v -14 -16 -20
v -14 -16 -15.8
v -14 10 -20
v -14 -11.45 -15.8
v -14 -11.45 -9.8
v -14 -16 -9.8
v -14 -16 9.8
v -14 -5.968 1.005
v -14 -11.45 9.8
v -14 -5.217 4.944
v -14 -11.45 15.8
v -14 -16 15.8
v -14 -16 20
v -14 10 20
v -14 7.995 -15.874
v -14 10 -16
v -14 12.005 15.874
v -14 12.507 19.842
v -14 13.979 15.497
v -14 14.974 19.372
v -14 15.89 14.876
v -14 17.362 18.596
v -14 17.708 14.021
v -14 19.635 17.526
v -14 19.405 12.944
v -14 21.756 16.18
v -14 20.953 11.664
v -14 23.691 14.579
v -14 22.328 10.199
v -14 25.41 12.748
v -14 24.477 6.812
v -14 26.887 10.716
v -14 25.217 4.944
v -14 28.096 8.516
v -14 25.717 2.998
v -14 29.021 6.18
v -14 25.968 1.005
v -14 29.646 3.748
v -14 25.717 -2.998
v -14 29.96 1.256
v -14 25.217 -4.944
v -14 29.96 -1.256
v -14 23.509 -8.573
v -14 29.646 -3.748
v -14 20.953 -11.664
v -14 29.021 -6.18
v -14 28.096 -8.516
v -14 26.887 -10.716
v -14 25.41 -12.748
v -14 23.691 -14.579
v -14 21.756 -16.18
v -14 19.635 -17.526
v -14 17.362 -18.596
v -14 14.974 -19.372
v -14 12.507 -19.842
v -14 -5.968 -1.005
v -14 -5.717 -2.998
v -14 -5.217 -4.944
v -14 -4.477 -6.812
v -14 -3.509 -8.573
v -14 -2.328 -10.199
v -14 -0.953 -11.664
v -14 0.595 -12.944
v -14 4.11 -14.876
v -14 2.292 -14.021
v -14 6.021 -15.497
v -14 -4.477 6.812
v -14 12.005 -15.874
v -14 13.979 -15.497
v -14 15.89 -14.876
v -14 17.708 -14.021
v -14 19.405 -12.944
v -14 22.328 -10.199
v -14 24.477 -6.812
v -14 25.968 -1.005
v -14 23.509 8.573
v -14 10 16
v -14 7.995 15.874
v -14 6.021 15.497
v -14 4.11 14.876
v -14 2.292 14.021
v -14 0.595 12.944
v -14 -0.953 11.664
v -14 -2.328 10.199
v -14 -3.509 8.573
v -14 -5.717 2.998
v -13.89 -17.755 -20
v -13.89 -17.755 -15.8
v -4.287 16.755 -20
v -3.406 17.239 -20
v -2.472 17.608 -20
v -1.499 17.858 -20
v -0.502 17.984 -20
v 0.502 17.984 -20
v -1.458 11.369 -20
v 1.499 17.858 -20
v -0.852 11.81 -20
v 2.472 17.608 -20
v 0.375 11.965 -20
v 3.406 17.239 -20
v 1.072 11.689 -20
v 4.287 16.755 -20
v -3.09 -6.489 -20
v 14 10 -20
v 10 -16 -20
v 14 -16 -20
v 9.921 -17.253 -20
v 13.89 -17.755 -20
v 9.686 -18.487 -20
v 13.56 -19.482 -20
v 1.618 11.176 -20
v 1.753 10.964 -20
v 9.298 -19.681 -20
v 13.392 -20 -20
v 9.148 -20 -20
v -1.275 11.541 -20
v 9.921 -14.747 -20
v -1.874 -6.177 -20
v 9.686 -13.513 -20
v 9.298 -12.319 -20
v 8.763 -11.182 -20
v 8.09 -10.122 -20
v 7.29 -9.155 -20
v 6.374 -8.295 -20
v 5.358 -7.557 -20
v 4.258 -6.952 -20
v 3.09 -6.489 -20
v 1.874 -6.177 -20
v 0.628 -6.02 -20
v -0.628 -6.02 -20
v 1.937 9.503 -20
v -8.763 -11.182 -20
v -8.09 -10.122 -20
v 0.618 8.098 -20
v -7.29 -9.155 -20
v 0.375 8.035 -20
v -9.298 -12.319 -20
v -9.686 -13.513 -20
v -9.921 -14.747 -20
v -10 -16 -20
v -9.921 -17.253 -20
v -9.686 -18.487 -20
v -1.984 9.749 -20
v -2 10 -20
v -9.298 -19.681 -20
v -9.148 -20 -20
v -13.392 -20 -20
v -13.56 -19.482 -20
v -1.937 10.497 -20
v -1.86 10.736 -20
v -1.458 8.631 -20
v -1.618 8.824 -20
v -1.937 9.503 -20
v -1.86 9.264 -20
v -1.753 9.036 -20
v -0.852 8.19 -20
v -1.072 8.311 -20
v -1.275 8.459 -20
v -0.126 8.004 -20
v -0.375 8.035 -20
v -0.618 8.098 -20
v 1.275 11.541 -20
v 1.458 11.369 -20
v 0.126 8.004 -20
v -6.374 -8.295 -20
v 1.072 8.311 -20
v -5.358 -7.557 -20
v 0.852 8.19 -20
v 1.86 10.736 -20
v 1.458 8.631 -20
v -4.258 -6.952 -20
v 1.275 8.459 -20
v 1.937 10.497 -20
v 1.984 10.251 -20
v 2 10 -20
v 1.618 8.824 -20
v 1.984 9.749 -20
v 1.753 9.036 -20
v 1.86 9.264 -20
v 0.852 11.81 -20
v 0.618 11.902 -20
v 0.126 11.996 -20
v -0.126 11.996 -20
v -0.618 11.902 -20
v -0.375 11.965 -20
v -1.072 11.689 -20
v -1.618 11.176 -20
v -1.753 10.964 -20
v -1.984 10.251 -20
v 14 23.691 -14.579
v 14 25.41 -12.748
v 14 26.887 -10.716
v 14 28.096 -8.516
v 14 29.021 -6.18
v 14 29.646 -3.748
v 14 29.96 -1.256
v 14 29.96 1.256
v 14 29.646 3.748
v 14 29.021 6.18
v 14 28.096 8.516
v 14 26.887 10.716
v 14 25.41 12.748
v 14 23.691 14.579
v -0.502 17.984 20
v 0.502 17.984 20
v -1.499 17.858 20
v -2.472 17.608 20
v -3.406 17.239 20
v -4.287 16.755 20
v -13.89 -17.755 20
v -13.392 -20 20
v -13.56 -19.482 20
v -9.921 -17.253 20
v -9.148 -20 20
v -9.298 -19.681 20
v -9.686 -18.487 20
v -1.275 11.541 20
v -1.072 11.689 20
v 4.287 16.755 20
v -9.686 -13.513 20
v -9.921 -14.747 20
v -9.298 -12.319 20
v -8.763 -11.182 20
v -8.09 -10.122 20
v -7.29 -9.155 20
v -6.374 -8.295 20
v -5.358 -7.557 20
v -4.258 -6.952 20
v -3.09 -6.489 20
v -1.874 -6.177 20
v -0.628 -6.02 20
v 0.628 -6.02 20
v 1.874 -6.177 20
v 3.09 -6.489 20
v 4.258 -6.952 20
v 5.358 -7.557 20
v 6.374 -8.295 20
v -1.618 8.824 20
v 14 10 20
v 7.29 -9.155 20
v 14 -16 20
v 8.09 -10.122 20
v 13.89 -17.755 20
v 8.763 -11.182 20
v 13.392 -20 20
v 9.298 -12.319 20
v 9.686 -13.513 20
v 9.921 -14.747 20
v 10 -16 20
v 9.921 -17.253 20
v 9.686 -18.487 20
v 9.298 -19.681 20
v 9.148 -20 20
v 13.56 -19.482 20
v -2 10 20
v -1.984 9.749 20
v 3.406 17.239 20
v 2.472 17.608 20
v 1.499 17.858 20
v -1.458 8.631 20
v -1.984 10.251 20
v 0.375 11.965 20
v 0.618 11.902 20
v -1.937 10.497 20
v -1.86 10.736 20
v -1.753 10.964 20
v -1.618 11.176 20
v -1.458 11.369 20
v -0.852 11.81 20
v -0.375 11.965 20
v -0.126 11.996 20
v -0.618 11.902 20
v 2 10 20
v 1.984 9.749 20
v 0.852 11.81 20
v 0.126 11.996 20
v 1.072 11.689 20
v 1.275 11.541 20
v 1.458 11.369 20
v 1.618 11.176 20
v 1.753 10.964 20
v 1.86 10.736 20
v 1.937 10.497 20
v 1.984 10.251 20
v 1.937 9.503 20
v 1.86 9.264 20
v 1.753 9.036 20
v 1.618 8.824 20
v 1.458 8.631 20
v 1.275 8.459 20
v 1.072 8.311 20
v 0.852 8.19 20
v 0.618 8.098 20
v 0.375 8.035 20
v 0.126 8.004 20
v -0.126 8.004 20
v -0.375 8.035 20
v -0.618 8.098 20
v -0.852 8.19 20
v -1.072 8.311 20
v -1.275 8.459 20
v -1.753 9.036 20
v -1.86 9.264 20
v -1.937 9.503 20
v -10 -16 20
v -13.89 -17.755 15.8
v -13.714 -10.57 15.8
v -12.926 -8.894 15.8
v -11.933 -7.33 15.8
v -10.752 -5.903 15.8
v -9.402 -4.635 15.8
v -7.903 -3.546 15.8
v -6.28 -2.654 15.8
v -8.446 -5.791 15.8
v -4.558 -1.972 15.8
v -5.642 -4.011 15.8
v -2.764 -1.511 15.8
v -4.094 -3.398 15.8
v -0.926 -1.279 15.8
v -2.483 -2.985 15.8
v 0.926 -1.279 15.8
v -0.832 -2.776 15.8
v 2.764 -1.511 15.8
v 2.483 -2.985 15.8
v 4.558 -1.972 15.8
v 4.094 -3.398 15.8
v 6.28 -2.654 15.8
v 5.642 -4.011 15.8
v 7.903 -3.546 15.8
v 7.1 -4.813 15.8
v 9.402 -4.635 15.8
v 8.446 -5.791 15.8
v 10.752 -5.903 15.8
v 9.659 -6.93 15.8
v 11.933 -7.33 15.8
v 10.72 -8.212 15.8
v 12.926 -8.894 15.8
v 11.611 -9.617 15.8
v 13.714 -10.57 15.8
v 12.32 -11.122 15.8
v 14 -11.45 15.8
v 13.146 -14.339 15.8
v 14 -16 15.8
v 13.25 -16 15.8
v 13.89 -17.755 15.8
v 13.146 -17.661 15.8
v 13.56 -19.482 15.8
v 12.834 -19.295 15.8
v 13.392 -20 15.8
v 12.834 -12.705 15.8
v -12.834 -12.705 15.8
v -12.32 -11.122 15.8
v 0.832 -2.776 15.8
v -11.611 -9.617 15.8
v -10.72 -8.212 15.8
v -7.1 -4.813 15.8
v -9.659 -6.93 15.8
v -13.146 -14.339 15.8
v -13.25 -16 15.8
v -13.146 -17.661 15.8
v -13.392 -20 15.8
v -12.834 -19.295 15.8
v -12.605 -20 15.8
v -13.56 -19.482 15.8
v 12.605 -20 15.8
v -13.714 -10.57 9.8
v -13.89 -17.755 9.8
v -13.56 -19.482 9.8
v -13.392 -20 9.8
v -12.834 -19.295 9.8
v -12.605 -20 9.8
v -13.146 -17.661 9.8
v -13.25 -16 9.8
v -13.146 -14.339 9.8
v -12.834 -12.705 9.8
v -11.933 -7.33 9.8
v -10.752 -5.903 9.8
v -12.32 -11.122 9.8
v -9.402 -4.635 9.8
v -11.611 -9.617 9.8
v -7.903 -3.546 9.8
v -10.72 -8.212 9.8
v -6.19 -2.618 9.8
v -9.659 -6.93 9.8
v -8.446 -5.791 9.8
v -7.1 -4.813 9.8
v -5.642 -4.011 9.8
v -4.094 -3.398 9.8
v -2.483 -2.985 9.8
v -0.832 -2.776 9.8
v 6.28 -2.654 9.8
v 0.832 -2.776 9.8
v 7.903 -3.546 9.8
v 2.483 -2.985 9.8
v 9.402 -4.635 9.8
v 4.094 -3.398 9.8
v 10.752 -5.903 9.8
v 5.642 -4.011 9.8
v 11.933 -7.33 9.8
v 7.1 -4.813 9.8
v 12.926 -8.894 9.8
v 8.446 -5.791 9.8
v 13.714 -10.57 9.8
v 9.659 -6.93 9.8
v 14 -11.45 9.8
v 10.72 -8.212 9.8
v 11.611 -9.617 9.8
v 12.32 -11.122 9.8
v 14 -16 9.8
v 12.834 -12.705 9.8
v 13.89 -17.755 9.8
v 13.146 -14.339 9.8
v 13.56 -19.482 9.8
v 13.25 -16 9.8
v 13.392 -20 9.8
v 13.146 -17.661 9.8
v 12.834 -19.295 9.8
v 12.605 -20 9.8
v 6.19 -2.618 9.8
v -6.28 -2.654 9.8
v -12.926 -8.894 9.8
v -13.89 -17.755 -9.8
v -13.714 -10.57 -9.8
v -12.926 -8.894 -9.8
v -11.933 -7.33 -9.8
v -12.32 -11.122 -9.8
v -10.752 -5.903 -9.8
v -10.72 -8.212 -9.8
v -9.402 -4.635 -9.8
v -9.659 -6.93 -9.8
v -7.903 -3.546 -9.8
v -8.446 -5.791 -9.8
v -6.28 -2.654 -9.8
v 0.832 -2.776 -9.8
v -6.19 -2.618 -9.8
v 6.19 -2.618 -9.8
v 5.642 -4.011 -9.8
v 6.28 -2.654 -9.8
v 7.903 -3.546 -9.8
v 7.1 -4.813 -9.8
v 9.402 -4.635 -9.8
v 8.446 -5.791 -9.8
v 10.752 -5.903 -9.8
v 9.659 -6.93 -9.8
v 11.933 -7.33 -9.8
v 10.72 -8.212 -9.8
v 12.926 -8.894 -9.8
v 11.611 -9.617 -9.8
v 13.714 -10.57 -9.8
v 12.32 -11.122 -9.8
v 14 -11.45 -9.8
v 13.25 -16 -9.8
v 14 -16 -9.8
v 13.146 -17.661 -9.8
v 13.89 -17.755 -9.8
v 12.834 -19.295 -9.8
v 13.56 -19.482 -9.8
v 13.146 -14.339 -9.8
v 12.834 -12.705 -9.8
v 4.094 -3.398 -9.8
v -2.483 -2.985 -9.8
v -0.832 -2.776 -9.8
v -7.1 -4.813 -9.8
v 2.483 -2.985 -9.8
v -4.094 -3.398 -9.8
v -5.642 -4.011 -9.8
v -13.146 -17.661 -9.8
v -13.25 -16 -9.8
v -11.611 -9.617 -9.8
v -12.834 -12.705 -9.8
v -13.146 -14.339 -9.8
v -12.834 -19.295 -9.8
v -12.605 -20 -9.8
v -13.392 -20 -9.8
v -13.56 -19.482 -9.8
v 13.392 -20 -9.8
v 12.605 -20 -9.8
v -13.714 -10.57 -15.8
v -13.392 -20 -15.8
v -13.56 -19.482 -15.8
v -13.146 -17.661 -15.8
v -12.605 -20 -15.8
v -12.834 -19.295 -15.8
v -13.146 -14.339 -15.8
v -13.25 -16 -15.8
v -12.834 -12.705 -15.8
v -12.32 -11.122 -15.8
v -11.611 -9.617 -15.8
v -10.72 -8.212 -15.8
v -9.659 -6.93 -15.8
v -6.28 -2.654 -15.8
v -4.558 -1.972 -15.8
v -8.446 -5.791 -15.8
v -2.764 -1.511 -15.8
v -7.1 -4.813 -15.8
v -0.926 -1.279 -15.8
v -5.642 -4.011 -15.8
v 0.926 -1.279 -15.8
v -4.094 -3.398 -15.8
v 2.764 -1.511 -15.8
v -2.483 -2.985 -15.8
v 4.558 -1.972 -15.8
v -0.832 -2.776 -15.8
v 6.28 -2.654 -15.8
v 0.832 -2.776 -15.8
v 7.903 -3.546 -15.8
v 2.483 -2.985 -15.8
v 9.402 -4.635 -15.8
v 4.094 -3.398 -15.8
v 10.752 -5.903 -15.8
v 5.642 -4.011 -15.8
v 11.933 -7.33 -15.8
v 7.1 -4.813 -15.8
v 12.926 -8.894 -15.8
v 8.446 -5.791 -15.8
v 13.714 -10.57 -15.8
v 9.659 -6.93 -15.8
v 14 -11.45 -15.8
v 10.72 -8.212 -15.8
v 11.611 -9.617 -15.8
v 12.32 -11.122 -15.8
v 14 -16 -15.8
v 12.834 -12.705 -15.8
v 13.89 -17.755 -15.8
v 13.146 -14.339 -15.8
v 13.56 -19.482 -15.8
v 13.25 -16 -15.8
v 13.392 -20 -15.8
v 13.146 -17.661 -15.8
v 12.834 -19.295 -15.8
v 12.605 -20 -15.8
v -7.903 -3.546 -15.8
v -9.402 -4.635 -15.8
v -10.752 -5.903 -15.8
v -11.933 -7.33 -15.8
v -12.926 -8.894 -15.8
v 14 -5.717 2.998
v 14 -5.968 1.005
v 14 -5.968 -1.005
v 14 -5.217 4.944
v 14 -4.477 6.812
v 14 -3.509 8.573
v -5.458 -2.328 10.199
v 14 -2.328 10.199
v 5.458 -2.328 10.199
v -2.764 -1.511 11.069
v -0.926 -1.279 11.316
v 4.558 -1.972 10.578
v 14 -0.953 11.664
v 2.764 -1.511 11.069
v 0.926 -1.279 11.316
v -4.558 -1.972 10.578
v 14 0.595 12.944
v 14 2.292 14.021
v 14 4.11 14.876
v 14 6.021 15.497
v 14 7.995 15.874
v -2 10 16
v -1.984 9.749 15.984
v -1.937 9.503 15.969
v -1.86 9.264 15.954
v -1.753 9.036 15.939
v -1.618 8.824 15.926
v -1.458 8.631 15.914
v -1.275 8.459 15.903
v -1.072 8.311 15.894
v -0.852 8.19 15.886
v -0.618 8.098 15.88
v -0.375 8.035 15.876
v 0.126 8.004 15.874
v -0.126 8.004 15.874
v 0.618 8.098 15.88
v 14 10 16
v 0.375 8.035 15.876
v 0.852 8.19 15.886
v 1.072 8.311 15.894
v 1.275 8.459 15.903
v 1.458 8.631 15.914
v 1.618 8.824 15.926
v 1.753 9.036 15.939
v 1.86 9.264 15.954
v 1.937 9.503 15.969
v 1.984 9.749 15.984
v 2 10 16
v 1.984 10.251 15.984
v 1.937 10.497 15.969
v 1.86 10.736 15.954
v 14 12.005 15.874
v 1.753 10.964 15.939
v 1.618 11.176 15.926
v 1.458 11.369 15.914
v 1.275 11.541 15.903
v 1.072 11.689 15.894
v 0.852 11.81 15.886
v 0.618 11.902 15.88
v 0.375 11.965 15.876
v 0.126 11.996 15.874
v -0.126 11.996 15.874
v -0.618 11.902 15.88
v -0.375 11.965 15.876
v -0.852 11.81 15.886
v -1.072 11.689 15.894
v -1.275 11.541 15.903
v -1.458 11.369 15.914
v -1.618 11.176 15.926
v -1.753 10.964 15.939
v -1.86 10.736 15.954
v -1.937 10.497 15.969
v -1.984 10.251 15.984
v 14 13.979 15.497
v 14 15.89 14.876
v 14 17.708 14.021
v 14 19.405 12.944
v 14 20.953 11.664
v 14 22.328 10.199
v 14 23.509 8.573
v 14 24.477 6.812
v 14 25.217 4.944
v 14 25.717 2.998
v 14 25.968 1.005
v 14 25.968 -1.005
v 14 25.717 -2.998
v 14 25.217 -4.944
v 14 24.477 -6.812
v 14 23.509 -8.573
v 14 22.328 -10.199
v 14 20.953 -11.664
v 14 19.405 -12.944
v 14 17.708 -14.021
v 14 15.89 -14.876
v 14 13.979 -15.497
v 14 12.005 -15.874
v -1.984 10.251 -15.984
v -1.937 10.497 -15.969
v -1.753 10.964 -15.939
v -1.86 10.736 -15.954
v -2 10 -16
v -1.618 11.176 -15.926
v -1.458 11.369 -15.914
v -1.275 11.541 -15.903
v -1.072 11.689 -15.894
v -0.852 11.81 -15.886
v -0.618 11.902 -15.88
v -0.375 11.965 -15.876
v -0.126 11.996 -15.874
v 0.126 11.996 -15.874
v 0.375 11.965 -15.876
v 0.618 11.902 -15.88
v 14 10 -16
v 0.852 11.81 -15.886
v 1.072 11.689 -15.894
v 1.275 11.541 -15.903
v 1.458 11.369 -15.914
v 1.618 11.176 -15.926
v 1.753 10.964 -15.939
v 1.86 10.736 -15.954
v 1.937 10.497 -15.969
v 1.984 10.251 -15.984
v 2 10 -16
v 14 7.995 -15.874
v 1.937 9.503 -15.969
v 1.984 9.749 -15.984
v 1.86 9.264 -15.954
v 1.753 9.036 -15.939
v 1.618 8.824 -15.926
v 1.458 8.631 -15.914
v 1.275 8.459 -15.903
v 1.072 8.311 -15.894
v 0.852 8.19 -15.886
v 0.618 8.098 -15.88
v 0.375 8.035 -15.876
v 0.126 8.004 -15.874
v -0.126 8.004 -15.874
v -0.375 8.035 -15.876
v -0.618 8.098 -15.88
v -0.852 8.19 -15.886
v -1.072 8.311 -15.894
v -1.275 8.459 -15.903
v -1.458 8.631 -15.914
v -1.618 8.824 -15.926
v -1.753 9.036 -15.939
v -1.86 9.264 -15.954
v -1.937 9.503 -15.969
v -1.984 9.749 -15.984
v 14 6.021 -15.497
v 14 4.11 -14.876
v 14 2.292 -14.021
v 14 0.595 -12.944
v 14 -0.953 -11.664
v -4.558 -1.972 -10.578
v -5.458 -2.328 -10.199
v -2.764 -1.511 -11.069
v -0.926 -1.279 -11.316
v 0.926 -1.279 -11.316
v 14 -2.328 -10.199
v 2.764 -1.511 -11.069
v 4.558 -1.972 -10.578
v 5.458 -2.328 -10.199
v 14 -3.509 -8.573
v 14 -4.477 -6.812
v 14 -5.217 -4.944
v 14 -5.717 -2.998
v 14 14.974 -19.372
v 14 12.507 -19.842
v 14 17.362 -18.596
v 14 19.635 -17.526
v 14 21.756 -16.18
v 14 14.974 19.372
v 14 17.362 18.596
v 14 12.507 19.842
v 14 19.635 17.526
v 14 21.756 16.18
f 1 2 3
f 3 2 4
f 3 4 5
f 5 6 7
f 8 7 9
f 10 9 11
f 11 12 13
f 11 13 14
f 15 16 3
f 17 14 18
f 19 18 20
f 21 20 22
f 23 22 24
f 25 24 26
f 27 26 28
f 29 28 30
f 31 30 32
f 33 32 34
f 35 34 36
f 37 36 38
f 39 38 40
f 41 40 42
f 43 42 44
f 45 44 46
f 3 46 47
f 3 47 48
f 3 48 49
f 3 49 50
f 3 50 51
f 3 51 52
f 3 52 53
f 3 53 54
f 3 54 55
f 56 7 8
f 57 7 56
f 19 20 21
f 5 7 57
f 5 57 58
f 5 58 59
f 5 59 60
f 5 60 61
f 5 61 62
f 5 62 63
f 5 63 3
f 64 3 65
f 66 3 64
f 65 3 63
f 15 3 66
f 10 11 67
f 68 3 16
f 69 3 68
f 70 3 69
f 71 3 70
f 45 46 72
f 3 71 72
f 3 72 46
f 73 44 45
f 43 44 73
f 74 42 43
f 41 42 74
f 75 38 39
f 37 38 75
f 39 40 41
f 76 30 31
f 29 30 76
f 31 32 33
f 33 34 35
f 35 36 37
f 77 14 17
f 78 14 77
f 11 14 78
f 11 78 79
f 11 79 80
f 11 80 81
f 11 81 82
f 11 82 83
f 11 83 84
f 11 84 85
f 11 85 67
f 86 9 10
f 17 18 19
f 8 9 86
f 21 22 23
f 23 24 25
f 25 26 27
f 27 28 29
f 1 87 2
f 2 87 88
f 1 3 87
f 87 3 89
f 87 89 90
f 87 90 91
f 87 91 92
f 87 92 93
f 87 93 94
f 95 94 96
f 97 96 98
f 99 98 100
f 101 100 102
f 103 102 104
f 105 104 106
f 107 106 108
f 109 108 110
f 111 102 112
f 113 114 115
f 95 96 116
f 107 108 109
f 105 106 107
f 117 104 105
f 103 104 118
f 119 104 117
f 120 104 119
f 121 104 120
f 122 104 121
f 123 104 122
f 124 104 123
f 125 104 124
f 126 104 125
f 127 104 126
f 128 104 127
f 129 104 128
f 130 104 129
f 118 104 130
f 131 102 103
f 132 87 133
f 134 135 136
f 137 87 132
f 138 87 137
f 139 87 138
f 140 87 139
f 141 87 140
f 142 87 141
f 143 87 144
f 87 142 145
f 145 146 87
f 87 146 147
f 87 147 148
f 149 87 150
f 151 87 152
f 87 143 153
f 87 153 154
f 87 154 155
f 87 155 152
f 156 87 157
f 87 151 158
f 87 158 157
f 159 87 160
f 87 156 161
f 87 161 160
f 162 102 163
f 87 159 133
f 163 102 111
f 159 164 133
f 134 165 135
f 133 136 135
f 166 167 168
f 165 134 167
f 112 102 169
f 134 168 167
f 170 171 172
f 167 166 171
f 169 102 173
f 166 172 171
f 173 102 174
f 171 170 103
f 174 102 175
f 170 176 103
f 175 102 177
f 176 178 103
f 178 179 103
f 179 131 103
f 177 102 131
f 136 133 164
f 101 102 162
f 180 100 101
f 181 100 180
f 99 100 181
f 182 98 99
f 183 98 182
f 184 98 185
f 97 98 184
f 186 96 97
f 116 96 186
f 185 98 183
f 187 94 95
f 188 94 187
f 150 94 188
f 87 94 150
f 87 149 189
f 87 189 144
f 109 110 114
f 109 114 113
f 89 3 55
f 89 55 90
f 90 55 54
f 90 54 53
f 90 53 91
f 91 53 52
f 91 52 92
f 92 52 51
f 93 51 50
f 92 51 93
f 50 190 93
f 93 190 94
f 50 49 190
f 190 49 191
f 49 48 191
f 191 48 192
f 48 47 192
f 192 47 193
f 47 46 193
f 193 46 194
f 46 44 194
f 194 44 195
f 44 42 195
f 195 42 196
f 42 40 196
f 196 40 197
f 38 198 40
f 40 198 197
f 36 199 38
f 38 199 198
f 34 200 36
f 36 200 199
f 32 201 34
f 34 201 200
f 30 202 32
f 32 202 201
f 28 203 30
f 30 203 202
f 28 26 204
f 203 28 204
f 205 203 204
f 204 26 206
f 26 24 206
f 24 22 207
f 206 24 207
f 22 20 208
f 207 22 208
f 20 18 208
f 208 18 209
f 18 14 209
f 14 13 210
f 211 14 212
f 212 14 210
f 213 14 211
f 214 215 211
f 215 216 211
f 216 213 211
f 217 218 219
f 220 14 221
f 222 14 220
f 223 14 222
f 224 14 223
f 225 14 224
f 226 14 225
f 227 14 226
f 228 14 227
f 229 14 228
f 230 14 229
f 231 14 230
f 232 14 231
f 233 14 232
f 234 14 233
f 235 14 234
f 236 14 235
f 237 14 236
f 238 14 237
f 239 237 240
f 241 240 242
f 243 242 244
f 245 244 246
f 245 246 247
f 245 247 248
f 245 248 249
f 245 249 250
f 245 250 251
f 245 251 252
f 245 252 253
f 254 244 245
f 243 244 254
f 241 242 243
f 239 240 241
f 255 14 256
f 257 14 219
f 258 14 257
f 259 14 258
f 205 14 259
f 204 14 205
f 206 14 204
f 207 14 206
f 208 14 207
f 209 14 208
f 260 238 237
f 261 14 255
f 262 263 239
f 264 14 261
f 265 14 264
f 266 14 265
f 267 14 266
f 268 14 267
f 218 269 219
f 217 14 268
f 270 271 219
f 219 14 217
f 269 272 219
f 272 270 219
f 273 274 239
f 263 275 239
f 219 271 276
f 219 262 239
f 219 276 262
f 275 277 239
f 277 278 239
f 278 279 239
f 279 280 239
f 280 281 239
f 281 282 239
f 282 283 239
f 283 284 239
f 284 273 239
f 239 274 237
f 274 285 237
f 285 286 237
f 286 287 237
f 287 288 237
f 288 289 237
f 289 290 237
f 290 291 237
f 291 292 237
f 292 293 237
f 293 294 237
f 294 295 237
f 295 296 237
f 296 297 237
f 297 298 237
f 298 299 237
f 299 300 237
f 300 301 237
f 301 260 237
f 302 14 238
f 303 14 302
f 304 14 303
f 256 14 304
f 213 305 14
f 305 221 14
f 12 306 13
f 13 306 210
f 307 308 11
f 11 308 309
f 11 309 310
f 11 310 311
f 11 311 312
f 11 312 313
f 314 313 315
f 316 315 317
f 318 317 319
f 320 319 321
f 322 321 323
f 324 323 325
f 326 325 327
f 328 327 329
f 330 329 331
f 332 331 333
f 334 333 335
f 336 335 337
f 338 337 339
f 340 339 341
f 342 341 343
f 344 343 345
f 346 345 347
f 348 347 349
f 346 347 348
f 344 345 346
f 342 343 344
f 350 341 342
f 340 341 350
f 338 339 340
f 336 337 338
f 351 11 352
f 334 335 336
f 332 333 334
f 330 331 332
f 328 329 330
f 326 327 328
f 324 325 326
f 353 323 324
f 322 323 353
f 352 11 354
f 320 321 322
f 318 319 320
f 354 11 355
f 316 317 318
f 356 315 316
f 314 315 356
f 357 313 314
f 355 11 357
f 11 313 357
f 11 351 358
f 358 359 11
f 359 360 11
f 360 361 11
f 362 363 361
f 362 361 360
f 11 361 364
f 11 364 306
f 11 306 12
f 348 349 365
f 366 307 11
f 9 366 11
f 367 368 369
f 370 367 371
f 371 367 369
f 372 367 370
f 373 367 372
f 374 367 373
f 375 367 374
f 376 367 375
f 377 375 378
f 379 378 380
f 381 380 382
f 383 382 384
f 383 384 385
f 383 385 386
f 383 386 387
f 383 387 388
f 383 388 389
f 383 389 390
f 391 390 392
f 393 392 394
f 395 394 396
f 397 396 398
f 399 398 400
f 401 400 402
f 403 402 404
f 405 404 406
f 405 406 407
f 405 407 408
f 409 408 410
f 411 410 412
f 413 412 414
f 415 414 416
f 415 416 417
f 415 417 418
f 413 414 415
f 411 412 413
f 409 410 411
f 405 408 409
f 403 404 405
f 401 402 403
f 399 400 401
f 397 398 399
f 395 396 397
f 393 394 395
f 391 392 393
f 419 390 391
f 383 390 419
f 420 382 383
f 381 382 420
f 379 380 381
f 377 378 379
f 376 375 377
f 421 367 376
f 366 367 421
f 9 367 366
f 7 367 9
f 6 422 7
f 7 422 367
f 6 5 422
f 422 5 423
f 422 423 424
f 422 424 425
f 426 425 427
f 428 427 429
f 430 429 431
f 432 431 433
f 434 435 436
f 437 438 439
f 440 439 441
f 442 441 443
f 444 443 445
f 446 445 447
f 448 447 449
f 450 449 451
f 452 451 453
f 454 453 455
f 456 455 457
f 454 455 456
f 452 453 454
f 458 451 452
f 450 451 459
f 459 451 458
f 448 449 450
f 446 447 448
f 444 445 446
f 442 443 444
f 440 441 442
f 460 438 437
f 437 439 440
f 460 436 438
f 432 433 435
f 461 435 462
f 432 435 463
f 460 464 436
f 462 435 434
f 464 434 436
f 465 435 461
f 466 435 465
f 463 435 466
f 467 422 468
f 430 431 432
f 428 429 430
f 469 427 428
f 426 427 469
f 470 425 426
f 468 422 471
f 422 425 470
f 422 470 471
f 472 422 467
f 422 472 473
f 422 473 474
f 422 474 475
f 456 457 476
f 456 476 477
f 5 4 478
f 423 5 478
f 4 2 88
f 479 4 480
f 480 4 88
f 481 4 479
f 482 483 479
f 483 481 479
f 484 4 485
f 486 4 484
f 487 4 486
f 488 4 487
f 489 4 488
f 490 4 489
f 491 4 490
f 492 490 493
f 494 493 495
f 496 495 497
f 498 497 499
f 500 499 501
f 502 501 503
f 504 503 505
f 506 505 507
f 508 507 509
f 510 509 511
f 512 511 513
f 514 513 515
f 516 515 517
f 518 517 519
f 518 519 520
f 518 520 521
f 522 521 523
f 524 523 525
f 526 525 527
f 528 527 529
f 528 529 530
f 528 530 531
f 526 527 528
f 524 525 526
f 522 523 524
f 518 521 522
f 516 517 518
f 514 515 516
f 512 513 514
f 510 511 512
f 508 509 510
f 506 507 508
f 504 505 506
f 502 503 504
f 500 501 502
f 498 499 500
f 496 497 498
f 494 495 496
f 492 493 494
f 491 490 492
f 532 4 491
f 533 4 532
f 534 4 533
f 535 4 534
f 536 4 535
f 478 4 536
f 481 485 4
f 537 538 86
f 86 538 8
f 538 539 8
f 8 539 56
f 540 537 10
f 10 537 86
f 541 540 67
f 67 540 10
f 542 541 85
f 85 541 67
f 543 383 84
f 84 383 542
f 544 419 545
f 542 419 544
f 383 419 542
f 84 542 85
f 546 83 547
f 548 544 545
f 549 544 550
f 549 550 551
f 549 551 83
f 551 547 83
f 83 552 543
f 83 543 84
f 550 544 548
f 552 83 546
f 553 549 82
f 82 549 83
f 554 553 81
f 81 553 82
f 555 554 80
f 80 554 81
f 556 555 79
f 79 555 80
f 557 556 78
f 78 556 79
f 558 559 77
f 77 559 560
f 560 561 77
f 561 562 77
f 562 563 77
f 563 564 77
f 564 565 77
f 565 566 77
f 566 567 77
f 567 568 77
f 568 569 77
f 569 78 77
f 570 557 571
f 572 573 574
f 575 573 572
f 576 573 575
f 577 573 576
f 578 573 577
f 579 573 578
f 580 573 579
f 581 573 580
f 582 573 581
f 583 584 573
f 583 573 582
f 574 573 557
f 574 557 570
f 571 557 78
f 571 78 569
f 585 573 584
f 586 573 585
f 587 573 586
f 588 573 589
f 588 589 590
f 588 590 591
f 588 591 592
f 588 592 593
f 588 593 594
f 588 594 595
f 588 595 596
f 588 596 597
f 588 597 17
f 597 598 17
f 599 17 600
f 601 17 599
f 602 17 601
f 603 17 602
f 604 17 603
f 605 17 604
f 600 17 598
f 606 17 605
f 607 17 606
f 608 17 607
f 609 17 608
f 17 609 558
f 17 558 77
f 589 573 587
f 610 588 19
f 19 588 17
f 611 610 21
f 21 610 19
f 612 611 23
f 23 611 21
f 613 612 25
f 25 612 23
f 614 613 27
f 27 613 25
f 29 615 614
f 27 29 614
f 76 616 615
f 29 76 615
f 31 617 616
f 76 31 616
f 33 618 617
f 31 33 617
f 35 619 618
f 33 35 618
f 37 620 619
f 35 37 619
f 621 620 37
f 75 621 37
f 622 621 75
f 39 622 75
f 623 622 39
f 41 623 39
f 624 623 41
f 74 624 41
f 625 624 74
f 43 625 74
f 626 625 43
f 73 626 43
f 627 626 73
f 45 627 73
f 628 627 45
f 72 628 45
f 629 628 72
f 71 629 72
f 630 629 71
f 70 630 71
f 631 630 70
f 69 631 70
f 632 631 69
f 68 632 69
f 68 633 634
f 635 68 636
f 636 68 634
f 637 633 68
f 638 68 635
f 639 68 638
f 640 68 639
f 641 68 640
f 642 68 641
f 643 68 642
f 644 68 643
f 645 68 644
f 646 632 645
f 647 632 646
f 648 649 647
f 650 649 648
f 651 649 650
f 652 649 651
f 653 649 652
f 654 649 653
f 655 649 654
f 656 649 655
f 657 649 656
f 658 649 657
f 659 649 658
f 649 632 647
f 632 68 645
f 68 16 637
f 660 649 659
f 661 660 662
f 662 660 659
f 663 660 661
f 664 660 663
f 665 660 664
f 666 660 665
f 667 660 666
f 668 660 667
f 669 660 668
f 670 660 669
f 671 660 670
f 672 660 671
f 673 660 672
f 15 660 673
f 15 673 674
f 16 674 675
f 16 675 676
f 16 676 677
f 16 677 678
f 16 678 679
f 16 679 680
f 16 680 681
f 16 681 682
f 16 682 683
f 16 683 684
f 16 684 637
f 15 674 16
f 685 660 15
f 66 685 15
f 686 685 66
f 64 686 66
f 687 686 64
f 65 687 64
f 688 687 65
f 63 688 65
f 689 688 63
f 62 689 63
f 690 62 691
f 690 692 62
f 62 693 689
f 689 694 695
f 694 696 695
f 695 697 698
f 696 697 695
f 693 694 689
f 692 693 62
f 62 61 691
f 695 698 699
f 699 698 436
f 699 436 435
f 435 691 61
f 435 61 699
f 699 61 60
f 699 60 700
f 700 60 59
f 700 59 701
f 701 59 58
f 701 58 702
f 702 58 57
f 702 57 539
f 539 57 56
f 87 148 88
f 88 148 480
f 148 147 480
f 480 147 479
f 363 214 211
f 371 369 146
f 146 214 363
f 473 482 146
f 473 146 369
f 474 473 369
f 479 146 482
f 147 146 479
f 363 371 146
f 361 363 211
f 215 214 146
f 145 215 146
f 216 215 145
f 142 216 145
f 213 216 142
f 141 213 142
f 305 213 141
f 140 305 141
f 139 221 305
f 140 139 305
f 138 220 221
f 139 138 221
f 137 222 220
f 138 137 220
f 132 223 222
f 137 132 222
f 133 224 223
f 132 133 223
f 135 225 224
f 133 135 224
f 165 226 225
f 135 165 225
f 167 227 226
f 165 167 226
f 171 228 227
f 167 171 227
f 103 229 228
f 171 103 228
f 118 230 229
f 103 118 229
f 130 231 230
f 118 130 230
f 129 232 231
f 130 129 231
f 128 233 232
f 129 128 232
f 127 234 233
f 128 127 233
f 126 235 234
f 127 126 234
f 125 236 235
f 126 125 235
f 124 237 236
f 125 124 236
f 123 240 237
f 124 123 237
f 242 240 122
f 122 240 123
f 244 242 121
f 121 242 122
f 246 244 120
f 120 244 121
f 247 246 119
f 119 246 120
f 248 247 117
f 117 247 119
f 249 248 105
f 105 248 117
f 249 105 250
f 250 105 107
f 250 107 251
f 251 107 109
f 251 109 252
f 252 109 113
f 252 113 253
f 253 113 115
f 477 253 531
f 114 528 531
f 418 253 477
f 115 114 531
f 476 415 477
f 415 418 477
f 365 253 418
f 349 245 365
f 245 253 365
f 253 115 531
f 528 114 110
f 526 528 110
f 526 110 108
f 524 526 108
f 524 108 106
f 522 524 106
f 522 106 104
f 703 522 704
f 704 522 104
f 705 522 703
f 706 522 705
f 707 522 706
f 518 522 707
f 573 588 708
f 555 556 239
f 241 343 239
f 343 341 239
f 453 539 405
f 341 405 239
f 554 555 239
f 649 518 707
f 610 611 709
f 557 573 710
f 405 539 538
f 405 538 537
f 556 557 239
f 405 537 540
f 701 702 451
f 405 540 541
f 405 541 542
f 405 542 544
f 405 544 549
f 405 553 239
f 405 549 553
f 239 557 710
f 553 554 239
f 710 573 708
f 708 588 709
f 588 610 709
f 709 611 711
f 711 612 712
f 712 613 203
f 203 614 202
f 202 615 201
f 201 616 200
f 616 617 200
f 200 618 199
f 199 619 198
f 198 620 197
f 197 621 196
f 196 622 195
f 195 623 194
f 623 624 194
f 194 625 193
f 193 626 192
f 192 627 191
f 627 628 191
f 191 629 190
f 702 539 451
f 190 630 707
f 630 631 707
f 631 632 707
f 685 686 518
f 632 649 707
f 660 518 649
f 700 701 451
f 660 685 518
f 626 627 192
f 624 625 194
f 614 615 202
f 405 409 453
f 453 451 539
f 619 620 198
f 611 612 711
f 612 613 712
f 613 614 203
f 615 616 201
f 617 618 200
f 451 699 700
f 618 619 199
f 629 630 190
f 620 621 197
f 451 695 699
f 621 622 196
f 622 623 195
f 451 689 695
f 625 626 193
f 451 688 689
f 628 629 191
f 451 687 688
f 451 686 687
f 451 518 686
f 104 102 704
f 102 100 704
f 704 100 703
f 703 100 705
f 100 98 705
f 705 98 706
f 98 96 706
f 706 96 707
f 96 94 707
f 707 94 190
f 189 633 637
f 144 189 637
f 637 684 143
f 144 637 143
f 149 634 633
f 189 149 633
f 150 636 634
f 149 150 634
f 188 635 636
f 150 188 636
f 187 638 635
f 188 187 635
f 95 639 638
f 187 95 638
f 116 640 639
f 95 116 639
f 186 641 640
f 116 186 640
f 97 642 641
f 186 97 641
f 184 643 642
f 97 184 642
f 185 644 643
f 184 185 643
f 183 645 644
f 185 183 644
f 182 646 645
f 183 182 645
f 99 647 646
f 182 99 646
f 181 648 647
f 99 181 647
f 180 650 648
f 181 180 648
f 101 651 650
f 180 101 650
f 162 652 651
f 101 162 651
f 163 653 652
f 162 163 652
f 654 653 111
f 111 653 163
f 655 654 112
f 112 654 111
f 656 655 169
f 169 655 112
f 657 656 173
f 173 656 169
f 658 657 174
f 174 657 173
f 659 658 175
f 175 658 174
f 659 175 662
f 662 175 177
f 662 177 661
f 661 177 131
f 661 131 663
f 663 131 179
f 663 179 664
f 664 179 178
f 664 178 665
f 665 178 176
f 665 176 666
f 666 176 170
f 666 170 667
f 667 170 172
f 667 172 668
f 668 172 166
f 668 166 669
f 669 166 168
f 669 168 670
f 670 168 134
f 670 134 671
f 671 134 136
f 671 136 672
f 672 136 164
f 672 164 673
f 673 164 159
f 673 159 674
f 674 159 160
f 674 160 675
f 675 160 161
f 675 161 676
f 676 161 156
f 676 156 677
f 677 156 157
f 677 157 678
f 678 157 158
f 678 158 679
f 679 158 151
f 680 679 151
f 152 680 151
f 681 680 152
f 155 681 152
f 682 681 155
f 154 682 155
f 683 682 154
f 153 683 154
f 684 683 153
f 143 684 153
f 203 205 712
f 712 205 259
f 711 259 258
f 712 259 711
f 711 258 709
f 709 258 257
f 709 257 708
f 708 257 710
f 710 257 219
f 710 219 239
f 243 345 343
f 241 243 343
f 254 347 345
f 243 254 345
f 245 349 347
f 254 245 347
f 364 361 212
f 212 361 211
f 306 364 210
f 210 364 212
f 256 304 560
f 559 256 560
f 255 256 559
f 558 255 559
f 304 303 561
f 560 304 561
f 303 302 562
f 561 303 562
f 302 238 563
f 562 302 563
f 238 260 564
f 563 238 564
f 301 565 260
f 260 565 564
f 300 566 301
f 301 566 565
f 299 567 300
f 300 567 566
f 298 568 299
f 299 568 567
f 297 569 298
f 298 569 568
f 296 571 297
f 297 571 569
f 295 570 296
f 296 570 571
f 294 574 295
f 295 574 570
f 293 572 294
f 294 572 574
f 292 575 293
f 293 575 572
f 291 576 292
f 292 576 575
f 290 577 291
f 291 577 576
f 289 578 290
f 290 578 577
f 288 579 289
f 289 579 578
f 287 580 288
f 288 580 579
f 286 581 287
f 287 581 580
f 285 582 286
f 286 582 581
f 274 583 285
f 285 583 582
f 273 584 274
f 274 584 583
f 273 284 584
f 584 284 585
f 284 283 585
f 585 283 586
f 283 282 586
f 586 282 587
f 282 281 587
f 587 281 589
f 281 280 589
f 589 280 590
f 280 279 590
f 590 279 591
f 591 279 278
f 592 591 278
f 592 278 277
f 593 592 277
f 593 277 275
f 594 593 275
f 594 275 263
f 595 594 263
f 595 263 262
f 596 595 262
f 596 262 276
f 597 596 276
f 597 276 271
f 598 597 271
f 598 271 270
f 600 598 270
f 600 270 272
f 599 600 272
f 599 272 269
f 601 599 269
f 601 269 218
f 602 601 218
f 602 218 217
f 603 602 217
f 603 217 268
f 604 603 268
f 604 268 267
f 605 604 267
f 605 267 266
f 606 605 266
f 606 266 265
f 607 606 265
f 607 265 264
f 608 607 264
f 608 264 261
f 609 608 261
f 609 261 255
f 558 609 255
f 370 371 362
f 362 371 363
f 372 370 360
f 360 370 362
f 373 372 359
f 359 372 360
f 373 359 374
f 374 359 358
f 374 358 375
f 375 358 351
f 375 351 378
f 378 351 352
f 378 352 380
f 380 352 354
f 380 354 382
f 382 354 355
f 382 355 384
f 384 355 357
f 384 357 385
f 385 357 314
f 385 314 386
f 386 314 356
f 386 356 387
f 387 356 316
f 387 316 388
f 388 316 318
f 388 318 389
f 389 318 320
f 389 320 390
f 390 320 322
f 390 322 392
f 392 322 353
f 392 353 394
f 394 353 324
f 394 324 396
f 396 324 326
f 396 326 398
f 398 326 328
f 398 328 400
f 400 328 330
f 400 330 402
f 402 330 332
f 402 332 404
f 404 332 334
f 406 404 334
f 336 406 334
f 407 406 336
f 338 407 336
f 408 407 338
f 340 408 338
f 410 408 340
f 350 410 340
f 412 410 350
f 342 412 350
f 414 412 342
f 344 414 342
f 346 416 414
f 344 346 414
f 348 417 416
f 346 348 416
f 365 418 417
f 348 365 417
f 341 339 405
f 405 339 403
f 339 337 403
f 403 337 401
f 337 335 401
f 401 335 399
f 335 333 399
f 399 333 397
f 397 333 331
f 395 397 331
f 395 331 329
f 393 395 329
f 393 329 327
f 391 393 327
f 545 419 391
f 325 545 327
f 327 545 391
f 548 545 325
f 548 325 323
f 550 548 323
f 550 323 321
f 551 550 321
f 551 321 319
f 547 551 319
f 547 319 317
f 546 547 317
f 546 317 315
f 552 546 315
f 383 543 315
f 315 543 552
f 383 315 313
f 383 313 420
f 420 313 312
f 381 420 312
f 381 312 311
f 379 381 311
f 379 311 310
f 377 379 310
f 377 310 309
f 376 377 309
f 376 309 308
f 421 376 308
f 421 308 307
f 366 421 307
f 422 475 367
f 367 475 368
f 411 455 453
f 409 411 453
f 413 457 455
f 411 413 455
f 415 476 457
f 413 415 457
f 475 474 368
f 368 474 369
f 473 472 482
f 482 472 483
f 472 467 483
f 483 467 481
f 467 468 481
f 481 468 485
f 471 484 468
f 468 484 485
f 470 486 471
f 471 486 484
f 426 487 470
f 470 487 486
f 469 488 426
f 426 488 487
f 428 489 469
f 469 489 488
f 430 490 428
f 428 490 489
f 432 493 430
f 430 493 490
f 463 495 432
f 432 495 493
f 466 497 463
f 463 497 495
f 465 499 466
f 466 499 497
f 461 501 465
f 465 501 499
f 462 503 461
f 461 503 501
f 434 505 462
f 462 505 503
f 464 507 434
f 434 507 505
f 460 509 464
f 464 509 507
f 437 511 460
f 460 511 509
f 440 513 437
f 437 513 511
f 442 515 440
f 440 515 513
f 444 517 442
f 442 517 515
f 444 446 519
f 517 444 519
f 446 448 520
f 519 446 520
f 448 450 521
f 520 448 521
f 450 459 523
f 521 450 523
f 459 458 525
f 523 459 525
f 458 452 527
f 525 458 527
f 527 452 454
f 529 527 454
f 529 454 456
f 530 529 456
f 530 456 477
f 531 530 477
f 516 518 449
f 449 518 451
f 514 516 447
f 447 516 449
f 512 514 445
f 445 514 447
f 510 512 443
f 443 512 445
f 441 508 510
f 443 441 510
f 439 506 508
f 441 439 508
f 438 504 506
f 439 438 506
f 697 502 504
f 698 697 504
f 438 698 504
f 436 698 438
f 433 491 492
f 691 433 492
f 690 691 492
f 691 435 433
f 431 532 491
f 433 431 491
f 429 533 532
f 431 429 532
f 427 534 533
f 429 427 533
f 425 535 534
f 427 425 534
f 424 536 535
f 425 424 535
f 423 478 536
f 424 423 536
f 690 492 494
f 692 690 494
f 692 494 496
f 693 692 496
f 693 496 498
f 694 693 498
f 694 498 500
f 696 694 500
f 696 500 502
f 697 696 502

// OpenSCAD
// Antenna to axis mount
// Satnogs Project 2014 MPL2.0 http://satnogs.org

$fn=50;

mast_1 = 32;		 // Axis mast diameter
mast_2 = 20;		 // Antenna mast diameter
offset = 8;			 // Extra width of mount
tireup_w = 6; 		 // Width of tireup
tireup_h = 1.5;	 // Height of tireup
washer = 16;		 // Washer diameter
bolt = 4;			 // Bolt for antenna mast


module axises() {
	translate([0,(mast_1+mast_2)/2-mast_1/2,0])
		rotate([0,90,0])
			cylinder(h=mast_2+offset+1, d=mast_1, center=true);
	translate([0,-(mast_1+mast_2)/2+mast_2/2,0])
		cylinder(h=mast_1+offset+1, d=mast_2, center=true);
	// Bolt for antenna mast cylinder
	translate([0,(mast_1+mast_2)/2-mast_1/2,0])
		cylinder(h=mast_1+offset+1, d=bolt, center=true);
}

module axises_outer() {
	translate([0,(mast_1+mast_2)/2-mast_1/2,0])
		rotate([0,90,0])
			cylinder(h=mast_2+offset, d=mast_1+offset, center=true);
	translate([0,-(mast_1+mast_2)/2+mast_2/2,0])
		cylinder(h=mast_1+offset, d=mast_2+offset, center=true);
	// Outer washer stud
	translate([0,(mast_1+mast_2)/2-mast_1/2,0])
		cylinder(h=mast_1+offset, d=washer, center=true);
}

module tire_up() {
	difference() {
		cylinder(h=tireup_w,d=mast_2+offset+tireup_h,center=true);
		cylinder(h=tireup_w,d=mast_2+offset-tireup_h,center=true);
	}
}

module cut() {
	translate([0,-(mast_1+mast_2)/2,0])
		cube([offset*5,offset*1.5,mast_1+offset*4],center=true);
}

difference() {
	hull() {
		axises_outer();
	}
	axises();
	mirror([0,0,1]) {
		translate([0,-(mast_1+mast_2)/2+mast_2/2,(2*mast_1)/5])
			tire_up();
	}
	translate([0,-(mast_1+mast_2)/2+mast_2/2,(2*mast_1)/5])
		tire_up();
	cut();
}
